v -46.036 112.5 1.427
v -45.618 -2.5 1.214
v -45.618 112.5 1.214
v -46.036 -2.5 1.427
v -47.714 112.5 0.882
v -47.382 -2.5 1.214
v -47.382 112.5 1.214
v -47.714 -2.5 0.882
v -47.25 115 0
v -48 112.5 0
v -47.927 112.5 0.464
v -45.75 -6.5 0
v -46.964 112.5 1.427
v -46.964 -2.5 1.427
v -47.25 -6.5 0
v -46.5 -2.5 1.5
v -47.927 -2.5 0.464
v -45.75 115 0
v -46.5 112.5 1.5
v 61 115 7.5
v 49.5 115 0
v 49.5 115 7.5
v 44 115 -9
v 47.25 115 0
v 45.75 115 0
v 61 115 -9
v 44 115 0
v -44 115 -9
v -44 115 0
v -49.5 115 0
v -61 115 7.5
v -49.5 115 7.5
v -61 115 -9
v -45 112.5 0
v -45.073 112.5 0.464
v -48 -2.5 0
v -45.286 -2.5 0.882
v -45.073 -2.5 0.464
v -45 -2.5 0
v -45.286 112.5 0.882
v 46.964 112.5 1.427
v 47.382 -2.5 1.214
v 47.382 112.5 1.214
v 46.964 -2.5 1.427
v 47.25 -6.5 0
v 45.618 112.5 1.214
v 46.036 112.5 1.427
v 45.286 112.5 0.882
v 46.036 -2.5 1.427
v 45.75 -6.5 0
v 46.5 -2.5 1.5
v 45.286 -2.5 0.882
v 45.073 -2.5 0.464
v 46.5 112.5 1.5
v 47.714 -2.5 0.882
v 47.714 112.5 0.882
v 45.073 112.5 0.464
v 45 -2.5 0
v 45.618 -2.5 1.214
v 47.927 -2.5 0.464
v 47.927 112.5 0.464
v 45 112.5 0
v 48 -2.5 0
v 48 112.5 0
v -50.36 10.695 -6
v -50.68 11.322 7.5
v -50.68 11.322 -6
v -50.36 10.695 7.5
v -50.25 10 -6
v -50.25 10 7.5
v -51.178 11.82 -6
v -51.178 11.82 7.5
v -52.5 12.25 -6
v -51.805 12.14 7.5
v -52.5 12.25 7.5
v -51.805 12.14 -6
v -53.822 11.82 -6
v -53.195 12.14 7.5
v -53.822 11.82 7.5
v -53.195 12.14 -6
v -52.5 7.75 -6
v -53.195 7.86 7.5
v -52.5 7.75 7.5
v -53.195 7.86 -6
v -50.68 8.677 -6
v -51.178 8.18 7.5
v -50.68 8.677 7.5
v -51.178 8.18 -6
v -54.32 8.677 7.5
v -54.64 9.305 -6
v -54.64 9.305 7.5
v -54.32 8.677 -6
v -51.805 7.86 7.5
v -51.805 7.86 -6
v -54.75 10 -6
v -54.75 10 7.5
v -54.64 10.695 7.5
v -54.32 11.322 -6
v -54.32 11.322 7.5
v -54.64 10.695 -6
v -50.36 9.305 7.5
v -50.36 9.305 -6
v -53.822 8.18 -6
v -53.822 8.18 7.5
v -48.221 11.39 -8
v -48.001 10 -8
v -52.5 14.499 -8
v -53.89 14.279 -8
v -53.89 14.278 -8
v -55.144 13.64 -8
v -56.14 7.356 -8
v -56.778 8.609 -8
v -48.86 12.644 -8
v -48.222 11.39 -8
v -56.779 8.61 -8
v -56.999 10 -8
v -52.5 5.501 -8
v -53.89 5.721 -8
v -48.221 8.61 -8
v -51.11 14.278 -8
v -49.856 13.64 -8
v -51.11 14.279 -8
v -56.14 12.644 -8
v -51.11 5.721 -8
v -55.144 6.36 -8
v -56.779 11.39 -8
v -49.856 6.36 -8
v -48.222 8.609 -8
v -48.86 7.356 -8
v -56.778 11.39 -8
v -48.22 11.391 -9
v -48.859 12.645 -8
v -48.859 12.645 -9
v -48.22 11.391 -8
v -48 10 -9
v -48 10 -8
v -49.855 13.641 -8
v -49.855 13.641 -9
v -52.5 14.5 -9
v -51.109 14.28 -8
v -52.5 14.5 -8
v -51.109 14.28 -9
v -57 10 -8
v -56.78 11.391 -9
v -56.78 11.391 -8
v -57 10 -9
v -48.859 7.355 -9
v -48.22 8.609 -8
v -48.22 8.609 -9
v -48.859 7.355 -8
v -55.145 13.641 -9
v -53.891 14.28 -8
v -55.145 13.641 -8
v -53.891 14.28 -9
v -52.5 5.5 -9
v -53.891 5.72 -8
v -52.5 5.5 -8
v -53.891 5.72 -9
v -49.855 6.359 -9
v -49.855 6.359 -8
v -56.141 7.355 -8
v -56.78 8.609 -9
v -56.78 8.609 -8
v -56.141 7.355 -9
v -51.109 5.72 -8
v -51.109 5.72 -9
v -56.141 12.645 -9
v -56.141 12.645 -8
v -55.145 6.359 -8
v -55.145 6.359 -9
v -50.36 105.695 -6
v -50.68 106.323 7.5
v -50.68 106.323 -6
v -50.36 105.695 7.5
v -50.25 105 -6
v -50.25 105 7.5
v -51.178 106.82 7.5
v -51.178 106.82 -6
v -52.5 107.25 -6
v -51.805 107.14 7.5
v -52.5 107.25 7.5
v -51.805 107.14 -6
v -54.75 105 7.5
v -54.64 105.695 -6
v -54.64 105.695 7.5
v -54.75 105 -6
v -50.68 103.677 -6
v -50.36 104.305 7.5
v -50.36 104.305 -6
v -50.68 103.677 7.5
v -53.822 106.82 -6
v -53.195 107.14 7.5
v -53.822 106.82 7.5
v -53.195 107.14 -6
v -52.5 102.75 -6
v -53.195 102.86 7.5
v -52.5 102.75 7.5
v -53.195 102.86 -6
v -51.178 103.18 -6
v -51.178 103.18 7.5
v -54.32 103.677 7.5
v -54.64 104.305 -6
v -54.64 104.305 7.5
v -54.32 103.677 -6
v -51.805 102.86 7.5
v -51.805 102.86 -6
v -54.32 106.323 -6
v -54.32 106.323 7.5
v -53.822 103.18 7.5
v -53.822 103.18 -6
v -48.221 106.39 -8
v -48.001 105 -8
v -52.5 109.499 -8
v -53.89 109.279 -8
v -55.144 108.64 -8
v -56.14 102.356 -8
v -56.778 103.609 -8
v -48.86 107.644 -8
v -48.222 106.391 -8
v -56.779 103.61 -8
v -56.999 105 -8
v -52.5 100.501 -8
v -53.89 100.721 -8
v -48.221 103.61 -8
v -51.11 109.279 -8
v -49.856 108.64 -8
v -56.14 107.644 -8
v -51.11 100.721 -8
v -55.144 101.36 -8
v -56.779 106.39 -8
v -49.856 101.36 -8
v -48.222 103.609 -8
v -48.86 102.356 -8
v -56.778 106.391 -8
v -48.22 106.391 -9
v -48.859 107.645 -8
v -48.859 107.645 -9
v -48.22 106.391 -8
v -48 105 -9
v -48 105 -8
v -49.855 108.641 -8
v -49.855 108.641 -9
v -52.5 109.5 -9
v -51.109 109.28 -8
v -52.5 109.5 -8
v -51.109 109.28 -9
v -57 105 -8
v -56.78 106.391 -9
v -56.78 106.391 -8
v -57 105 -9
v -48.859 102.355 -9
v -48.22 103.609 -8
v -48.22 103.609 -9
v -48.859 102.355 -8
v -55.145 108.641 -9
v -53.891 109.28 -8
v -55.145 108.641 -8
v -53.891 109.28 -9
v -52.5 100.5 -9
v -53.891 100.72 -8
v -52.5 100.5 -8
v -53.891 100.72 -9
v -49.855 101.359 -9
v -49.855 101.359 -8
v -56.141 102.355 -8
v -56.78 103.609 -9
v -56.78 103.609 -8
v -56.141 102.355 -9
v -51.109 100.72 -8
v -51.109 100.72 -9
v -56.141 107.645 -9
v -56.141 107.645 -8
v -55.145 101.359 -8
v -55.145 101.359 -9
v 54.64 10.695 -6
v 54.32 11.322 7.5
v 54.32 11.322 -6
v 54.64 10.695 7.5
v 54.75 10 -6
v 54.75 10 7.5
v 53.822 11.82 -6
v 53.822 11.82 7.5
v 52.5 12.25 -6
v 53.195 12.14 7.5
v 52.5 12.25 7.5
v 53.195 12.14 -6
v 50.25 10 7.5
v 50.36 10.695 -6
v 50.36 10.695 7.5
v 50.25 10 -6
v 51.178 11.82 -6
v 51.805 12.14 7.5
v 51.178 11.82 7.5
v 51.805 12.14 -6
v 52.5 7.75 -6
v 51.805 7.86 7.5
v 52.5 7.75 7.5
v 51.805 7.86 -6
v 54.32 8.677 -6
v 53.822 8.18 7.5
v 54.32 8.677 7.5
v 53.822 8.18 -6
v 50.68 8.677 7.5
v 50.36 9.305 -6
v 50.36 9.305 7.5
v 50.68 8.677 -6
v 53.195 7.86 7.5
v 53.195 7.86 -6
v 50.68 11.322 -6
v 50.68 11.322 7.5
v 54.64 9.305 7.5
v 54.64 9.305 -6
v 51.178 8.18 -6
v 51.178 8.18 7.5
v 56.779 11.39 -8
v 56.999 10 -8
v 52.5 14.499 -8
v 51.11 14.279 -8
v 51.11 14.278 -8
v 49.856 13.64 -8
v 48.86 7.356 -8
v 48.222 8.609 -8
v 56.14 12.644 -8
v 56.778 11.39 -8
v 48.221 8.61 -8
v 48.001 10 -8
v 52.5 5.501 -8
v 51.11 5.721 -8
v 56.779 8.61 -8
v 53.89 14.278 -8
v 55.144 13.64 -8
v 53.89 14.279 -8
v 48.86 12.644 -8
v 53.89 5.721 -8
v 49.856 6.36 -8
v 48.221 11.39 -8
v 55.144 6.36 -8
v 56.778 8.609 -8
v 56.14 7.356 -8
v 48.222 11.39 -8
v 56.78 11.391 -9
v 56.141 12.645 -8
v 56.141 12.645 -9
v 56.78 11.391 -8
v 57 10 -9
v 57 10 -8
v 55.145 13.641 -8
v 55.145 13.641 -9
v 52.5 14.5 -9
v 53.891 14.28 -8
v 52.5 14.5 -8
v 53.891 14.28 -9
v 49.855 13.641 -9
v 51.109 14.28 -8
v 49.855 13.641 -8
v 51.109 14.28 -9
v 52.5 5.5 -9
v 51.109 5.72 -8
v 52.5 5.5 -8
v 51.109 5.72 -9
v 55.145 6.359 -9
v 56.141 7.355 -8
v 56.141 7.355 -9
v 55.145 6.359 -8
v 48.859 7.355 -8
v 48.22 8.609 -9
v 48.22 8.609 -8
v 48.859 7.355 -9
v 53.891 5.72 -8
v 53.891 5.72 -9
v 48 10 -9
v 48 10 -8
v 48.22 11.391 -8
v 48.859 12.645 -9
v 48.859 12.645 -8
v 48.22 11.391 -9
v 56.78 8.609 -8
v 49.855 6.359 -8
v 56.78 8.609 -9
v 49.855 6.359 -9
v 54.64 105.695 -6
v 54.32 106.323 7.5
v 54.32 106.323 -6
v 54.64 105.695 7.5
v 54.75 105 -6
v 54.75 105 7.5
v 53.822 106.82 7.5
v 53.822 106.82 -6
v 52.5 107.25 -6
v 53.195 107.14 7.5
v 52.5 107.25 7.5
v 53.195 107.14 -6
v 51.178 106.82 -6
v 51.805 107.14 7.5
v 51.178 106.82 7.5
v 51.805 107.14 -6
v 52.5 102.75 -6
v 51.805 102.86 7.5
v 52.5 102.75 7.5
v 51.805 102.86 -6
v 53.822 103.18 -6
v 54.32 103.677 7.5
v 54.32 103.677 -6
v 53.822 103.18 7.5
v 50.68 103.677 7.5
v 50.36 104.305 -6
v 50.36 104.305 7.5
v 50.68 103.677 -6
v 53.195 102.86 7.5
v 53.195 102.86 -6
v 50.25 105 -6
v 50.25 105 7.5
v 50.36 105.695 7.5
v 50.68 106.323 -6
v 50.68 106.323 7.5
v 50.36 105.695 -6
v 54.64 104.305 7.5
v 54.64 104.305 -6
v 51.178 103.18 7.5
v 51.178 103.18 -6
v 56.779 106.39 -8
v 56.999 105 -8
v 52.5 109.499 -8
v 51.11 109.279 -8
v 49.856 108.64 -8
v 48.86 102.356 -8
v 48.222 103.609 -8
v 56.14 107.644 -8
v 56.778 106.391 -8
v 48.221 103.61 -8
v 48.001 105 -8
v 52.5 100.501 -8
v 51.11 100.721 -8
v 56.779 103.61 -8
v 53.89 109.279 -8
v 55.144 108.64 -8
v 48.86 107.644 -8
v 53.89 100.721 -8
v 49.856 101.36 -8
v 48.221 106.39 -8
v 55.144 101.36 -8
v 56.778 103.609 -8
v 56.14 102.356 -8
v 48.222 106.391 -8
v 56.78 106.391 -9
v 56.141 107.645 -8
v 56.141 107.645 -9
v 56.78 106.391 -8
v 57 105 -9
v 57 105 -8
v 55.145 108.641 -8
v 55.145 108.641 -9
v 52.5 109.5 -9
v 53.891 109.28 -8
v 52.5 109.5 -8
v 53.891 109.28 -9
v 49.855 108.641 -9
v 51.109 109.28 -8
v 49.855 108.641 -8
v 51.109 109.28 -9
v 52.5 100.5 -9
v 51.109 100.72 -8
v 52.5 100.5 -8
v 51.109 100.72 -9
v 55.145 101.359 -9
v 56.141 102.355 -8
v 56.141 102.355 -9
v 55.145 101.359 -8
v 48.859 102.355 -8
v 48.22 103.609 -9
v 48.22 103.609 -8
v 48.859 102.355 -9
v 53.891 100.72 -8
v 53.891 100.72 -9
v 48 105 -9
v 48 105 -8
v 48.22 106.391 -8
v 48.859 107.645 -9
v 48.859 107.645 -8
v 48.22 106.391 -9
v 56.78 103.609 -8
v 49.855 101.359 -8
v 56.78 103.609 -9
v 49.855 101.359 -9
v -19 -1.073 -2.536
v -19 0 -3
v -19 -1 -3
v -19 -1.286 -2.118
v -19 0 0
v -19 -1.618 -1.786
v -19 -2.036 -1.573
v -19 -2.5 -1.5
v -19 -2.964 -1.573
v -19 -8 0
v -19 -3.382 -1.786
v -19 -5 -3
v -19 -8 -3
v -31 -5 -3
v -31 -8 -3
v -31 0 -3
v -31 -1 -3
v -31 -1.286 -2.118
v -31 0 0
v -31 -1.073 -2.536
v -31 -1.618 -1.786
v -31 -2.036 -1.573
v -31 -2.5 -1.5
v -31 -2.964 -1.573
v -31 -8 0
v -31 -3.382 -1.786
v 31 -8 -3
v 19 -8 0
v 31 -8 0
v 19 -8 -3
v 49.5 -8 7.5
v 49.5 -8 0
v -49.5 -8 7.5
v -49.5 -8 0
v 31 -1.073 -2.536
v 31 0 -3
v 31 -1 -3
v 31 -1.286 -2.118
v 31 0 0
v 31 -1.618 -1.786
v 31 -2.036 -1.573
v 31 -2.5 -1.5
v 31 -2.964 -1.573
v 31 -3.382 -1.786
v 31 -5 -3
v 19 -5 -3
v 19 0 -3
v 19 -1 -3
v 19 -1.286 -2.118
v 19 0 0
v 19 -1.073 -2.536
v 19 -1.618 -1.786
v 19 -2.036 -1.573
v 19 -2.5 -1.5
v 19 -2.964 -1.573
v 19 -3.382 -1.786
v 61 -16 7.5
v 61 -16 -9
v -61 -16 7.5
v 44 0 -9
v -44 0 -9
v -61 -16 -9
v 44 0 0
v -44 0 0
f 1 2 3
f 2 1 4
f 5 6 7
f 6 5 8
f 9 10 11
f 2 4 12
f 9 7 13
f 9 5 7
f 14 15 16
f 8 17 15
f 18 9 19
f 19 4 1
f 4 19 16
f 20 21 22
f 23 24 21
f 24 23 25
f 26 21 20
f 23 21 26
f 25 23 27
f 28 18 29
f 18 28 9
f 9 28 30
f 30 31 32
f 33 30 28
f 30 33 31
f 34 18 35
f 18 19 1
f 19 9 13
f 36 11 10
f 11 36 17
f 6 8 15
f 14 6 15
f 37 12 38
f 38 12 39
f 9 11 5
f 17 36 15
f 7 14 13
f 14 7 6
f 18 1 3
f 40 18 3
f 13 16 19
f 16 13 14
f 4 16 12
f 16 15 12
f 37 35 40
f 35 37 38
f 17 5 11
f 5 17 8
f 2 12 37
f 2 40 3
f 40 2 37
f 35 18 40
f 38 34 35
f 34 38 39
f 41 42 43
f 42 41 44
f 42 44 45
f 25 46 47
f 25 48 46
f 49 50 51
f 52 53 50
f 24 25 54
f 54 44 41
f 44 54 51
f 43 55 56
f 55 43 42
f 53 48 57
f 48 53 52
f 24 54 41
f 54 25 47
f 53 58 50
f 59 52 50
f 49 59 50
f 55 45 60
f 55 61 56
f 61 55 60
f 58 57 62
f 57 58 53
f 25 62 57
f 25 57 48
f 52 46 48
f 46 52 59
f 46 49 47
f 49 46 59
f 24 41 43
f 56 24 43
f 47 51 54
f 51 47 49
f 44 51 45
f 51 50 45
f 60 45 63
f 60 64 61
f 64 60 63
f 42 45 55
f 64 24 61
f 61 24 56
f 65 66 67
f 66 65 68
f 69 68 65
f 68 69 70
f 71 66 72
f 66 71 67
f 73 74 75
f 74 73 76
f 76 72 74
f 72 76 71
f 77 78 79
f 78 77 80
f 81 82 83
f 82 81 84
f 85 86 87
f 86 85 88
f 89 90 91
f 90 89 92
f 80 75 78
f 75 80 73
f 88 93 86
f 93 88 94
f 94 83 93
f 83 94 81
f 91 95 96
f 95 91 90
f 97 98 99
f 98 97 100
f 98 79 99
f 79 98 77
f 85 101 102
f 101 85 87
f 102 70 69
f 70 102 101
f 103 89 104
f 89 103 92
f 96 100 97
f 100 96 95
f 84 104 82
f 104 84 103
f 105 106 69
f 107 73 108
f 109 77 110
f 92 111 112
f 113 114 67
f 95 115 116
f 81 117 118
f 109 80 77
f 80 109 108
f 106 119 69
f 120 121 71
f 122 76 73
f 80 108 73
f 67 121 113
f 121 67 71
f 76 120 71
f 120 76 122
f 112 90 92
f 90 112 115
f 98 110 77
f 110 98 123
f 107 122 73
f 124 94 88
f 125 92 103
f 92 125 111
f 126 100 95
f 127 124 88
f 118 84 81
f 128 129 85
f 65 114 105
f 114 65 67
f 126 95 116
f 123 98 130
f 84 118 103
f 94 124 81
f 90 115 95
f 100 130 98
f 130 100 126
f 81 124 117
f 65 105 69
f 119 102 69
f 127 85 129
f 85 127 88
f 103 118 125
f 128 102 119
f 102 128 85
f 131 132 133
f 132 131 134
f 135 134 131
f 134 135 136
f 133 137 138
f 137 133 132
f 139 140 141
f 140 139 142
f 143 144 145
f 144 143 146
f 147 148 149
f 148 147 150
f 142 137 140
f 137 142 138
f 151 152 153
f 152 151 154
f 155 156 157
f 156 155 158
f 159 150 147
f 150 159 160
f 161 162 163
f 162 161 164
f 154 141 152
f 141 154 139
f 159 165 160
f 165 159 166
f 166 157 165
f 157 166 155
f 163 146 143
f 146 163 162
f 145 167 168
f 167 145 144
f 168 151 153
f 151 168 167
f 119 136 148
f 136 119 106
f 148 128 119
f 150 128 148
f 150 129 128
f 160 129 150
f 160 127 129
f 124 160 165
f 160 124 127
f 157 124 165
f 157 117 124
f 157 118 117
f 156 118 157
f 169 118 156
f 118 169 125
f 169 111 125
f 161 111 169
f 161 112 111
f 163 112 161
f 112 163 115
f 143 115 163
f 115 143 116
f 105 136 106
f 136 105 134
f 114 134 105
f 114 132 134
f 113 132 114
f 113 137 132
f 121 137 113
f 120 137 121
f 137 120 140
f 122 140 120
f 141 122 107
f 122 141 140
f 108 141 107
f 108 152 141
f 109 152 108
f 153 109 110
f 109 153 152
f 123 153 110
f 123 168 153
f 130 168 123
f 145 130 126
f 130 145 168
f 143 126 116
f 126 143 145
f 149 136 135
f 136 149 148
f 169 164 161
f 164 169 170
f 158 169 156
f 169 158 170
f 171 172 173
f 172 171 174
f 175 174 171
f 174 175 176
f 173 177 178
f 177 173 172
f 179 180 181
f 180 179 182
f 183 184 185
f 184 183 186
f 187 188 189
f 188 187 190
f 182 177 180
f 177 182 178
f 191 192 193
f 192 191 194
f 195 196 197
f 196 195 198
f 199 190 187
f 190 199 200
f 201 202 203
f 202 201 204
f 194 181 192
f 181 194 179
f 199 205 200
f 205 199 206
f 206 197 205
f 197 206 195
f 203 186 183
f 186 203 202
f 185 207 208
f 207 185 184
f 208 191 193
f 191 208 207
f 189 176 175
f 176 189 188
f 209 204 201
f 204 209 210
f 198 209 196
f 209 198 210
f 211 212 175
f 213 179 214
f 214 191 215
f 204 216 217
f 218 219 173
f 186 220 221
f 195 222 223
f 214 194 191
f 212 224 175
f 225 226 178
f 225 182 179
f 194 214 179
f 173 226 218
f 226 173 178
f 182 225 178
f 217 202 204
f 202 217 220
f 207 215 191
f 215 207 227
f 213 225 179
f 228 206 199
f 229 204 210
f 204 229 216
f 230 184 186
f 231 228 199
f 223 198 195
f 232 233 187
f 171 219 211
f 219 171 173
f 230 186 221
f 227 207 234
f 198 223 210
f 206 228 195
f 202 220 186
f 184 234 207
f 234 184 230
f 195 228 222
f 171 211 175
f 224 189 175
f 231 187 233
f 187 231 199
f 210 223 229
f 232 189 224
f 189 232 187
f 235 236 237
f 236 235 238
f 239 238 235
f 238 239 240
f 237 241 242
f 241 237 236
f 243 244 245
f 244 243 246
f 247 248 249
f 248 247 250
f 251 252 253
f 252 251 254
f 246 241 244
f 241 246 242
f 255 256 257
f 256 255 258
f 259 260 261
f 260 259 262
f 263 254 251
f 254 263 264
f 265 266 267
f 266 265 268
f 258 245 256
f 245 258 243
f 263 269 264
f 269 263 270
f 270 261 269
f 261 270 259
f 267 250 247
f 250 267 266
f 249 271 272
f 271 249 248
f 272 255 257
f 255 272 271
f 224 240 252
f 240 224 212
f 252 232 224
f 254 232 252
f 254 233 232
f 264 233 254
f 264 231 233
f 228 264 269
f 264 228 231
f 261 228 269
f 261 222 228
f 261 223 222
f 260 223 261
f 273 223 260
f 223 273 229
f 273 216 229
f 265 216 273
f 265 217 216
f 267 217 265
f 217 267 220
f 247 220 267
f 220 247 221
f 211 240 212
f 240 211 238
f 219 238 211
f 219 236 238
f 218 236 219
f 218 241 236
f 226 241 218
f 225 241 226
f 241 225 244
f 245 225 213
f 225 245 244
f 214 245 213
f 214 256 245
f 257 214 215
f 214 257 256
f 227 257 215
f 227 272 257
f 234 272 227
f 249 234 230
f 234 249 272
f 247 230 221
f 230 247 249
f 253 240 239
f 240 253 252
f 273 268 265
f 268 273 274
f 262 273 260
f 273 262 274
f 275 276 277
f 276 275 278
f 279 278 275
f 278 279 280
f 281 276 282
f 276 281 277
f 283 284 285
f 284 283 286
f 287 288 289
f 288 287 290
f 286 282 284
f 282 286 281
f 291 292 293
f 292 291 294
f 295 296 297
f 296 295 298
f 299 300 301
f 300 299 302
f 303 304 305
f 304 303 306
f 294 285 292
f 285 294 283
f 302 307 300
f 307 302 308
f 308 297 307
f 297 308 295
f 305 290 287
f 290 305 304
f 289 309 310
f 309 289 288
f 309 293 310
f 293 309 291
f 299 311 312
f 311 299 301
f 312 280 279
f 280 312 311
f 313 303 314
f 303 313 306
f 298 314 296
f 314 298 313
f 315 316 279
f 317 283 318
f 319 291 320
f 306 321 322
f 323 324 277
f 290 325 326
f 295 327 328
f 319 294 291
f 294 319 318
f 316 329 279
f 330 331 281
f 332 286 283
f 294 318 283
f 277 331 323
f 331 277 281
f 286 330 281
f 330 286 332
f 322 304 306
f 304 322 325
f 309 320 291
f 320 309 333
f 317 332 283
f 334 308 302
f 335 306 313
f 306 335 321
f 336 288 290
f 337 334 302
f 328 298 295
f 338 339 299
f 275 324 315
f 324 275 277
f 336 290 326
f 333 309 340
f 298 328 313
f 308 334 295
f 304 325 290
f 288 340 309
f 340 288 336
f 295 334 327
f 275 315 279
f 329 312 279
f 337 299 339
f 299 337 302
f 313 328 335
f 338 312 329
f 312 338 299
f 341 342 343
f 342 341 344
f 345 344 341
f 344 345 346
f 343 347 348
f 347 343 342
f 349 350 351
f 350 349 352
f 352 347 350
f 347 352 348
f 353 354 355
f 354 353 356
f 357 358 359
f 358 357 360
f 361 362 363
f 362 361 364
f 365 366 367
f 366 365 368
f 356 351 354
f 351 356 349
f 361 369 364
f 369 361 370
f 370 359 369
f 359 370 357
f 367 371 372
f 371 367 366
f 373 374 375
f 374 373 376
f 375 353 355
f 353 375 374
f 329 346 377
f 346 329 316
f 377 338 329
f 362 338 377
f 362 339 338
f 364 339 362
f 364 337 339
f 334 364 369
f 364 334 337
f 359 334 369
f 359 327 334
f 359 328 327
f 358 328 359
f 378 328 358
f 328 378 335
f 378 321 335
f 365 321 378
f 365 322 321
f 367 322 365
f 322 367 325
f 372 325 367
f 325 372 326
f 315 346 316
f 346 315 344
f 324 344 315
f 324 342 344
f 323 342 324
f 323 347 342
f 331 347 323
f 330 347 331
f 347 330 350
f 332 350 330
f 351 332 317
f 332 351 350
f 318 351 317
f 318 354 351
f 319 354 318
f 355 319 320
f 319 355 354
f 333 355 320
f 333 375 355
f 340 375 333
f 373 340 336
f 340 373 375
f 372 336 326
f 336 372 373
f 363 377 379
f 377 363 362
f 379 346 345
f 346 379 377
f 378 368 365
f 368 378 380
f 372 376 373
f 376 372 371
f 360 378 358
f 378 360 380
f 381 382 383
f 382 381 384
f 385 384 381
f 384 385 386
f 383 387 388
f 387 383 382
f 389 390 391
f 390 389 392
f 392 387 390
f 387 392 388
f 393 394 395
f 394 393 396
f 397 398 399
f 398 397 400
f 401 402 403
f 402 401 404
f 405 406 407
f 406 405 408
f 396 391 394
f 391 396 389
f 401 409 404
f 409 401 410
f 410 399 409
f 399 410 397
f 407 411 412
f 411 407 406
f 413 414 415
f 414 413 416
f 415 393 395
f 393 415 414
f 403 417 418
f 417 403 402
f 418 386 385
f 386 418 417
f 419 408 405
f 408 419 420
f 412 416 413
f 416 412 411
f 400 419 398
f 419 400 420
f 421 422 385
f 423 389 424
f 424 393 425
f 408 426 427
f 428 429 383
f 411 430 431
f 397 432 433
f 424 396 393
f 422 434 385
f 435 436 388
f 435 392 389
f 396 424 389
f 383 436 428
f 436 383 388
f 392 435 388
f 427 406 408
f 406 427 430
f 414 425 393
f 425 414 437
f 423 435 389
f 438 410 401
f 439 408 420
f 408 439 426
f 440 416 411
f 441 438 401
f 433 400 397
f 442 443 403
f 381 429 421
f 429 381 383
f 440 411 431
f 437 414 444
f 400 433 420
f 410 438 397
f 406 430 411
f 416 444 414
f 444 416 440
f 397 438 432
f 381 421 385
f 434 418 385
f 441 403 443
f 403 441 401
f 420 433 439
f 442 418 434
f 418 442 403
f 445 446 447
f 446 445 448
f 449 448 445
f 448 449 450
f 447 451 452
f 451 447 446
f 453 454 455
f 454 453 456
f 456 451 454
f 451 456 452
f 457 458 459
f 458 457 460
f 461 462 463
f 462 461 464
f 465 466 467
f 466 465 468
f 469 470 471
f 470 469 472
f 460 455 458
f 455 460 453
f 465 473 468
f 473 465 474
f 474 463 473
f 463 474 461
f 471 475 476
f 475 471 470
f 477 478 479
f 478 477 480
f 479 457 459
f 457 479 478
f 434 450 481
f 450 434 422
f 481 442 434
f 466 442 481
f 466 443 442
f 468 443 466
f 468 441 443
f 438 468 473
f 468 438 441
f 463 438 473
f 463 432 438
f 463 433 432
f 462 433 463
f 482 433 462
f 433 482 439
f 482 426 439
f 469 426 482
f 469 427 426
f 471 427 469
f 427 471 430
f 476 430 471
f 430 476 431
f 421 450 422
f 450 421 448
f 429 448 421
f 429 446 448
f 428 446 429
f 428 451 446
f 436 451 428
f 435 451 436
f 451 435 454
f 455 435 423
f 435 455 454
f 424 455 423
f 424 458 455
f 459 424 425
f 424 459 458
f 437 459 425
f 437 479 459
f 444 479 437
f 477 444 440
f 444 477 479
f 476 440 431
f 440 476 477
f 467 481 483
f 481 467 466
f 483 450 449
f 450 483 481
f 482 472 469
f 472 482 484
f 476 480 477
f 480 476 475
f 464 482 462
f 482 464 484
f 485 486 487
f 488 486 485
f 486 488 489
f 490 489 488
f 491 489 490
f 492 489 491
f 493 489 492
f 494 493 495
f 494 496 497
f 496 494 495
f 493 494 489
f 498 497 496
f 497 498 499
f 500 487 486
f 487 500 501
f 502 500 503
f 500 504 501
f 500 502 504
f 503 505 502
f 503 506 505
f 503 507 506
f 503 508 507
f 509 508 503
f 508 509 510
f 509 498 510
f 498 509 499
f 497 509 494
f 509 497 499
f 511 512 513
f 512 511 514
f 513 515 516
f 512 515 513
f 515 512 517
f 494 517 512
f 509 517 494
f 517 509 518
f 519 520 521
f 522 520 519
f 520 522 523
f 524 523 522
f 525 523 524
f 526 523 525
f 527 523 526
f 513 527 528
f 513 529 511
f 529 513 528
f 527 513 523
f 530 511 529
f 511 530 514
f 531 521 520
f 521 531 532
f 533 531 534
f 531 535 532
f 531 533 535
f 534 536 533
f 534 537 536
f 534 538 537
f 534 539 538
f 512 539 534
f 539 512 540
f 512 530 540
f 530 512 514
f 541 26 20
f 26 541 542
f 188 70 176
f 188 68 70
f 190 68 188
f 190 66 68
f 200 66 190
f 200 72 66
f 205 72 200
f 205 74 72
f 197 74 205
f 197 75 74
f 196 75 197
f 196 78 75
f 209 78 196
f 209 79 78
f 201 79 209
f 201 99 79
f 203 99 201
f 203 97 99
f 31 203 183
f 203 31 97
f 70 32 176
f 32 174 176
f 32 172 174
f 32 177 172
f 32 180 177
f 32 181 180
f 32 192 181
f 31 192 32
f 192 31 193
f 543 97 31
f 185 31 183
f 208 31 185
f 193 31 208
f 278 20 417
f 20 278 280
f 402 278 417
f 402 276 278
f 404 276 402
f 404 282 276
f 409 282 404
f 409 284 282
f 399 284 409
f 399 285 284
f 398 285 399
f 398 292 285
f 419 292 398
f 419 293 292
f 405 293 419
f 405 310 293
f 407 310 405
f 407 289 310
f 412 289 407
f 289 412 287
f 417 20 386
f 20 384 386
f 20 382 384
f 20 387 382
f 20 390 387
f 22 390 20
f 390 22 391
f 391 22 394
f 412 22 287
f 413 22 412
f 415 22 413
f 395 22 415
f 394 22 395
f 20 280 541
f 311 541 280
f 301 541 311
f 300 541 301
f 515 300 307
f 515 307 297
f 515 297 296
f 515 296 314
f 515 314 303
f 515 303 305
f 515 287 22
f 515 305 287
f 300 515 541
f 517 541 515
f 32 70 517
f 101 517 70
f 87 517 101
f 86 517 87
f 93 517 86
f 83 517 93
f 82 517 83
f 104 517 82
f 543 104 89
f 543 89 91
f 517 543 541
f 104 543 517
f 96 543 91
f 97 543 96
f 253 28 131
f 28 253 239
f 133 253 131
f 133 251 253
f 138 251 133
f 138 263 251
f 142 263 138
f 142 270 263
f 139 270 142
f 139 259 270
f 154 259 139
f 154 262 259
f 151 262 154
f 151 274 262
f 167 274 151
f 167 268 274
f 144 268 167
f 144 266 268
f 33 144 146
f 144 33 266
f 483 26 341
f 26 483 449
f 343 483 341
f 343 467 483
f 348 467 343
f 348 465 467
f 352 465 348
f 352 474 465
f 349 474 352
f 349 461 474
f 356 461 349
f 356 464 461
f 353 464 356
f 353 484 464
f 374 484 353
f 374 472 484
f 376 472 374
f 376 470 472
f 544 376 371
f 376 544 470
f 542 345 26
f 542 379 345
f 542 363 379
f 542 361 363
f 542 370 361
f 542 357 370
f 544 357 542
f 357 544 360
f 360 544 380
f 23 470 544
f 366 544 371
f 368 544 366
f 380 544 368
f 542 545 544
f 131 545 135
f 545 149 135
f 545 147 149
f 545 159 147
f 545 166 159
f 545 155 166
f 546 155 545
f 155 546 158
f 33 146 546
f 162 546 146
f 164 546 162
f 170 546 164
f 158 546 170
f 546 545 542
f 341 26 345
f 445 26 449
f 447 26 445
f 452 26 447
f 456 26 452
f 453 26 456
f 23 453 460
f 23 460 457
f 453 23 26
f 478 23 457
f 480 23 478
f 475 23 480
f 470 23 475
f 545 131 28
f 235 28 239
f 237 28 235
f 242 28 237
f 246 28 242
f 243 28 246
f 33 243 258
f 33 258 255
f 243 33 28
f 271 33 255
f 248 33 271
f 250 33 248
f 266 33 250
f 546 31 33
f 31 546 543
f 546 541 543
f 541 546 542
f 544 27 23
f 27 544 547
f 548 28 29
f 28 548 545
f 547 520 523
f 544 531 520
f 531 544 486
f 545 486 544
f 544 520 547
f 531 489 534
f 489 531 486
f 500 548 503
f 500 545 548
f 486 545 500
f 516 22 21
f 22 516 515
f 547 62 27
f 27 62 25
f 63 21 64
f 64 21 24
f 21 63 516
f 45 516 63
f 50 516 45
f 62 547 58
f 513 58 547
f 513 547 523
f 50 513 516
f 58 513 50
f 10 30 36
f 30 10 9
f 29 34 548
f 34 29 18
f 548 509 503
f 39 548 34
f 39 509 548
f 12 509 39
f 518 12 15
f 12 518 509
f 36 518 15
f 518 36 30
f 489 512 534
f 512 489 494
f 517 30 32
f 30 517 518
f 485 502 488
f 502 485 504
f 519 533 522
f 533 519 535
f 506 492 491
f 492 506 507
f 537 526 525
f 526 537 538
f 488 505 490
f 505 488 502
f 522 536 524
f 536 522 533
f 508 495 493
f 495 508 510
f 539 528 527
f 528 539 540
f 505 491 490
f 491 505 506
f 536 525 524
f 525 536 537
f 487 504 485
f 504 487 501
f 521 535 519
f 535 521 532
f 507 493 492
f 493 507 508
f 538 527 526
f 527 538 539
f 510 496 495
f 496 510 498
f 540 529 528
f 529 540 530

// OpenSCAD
// Measured
BODY_W = 88;
BODY_L = 115;
RIM_W = 5;
RIM_L = 8;
RIM_H = 6;
PLASTIC_T = 1;
BACK_W = 11;
BACK_SEP = 39;
BACK_H = 3;
OVERALL_H = 15; // from screw
SCREW_R = 4/2;
SCREW_R_HEAD = 8/2;
SCREW_HEAD_H = 1;

// Calc
BASE_H = OVERALL_H - RIM_H;

// Mine
BASE_W = 12;
BASE_L = 8;
SCREW_POS = 10;


// Misc
EPS = 0.001;
TOL = 0.5;

module box (sizes, centering=[1, 1, 1], extra_negative=[0, 0, 0]) {
    translate ([
        -sizes[0]*centering[0]/2-extra_negative[0],
        -sizes[1]*centering[1]/2-extra_negative[1],
        -sizes[2]*centering[2]/2-extra_negative[2],
    ]) {
        cube ([
            sizes[0]+extra_negative[0],
            sizes[1]+extra_negative[1],
            sizes[2]+extra_negative[2],
        ]);
    }
}

union () {
    R=RIM_W/2-PLASTIC_T;
    difference () {
        box ([BODY_W+RIM_W*2+BASE_W*2, BODY_L, RIM_H+R], [1, 0, 0], [0, RIM_L+BASE_L, BASE_H]);
        box ([BODY_W, BODY_L+EPS, 1000], [1, 0, 1]);
        box ([BODY_W+RIM_W*2+TOL*2, BODY_L+EPS, 1000], [1, 0, 0], [0, RIM_L, 0]);
        for (x=[-1,1]) {
            // gaps in the back
            translate ([x*(BACK_SEP/2+BACK_W/2), 0, 0]) box ([BACK_W+TOL*2, 1000, 1000], [1, 0, 0], [0, RIM_L, BACK_H]);
            // screw holes
            for (y=[SCREW_POS, BODY_L-SCREW_POS]) {
                translate ([x*(BODY_W/2+RIM_W/2+BASE_W/2), y, -BASE_H-EPS]) {
                    cylinder (1000, r=SCREW_R+TOL/2, $fn=20);
                    translate ([0, 0, SCREW_HEAD_H]) {
                        cylinder (SCREW_R_HEAD-SCREW_R+EPS, r1=SCREW_R_HEAD+TOL, r2=SCREW_R+TOL/2, $fn=20);
                    }
                    cylinder (SCREW_HEAD_H+EPS, r=SCREW_R_HEAD+TOL, $fn=20);
                }
            }
        }
    }
    for (x=[-1,1]) {
        B = R+PLASTIC_T;
        hull () {
            translate ([x*(BODY_W/2+RIM_W/2), -B, 0]) rotate ([-90, 0, 0]) {
                cylinder (BODY_L, r=R, $fn=20);
            }
            translate ([x*(BODY_W/2+RIM_W/2), 0, 0]) box ([R, BODY_L, 0], [1, 0, 0], [0, RIM_L/2+B, EPS]);
        }
    }
    hull () {
        translate ([-BODY_W/2, -R-PLASTIC_T, -BACK_H]) rotate ([0, 90, 0]) cylinder (BODY_W, r=R, $fn=20);
        translate ([0, -R-PLASTIC_T, -BACK_H]) box ([BODY_W, (R)*2, 0], [1, 1, 0], [0, PLASTIC_T, EPS]);
    }
}
